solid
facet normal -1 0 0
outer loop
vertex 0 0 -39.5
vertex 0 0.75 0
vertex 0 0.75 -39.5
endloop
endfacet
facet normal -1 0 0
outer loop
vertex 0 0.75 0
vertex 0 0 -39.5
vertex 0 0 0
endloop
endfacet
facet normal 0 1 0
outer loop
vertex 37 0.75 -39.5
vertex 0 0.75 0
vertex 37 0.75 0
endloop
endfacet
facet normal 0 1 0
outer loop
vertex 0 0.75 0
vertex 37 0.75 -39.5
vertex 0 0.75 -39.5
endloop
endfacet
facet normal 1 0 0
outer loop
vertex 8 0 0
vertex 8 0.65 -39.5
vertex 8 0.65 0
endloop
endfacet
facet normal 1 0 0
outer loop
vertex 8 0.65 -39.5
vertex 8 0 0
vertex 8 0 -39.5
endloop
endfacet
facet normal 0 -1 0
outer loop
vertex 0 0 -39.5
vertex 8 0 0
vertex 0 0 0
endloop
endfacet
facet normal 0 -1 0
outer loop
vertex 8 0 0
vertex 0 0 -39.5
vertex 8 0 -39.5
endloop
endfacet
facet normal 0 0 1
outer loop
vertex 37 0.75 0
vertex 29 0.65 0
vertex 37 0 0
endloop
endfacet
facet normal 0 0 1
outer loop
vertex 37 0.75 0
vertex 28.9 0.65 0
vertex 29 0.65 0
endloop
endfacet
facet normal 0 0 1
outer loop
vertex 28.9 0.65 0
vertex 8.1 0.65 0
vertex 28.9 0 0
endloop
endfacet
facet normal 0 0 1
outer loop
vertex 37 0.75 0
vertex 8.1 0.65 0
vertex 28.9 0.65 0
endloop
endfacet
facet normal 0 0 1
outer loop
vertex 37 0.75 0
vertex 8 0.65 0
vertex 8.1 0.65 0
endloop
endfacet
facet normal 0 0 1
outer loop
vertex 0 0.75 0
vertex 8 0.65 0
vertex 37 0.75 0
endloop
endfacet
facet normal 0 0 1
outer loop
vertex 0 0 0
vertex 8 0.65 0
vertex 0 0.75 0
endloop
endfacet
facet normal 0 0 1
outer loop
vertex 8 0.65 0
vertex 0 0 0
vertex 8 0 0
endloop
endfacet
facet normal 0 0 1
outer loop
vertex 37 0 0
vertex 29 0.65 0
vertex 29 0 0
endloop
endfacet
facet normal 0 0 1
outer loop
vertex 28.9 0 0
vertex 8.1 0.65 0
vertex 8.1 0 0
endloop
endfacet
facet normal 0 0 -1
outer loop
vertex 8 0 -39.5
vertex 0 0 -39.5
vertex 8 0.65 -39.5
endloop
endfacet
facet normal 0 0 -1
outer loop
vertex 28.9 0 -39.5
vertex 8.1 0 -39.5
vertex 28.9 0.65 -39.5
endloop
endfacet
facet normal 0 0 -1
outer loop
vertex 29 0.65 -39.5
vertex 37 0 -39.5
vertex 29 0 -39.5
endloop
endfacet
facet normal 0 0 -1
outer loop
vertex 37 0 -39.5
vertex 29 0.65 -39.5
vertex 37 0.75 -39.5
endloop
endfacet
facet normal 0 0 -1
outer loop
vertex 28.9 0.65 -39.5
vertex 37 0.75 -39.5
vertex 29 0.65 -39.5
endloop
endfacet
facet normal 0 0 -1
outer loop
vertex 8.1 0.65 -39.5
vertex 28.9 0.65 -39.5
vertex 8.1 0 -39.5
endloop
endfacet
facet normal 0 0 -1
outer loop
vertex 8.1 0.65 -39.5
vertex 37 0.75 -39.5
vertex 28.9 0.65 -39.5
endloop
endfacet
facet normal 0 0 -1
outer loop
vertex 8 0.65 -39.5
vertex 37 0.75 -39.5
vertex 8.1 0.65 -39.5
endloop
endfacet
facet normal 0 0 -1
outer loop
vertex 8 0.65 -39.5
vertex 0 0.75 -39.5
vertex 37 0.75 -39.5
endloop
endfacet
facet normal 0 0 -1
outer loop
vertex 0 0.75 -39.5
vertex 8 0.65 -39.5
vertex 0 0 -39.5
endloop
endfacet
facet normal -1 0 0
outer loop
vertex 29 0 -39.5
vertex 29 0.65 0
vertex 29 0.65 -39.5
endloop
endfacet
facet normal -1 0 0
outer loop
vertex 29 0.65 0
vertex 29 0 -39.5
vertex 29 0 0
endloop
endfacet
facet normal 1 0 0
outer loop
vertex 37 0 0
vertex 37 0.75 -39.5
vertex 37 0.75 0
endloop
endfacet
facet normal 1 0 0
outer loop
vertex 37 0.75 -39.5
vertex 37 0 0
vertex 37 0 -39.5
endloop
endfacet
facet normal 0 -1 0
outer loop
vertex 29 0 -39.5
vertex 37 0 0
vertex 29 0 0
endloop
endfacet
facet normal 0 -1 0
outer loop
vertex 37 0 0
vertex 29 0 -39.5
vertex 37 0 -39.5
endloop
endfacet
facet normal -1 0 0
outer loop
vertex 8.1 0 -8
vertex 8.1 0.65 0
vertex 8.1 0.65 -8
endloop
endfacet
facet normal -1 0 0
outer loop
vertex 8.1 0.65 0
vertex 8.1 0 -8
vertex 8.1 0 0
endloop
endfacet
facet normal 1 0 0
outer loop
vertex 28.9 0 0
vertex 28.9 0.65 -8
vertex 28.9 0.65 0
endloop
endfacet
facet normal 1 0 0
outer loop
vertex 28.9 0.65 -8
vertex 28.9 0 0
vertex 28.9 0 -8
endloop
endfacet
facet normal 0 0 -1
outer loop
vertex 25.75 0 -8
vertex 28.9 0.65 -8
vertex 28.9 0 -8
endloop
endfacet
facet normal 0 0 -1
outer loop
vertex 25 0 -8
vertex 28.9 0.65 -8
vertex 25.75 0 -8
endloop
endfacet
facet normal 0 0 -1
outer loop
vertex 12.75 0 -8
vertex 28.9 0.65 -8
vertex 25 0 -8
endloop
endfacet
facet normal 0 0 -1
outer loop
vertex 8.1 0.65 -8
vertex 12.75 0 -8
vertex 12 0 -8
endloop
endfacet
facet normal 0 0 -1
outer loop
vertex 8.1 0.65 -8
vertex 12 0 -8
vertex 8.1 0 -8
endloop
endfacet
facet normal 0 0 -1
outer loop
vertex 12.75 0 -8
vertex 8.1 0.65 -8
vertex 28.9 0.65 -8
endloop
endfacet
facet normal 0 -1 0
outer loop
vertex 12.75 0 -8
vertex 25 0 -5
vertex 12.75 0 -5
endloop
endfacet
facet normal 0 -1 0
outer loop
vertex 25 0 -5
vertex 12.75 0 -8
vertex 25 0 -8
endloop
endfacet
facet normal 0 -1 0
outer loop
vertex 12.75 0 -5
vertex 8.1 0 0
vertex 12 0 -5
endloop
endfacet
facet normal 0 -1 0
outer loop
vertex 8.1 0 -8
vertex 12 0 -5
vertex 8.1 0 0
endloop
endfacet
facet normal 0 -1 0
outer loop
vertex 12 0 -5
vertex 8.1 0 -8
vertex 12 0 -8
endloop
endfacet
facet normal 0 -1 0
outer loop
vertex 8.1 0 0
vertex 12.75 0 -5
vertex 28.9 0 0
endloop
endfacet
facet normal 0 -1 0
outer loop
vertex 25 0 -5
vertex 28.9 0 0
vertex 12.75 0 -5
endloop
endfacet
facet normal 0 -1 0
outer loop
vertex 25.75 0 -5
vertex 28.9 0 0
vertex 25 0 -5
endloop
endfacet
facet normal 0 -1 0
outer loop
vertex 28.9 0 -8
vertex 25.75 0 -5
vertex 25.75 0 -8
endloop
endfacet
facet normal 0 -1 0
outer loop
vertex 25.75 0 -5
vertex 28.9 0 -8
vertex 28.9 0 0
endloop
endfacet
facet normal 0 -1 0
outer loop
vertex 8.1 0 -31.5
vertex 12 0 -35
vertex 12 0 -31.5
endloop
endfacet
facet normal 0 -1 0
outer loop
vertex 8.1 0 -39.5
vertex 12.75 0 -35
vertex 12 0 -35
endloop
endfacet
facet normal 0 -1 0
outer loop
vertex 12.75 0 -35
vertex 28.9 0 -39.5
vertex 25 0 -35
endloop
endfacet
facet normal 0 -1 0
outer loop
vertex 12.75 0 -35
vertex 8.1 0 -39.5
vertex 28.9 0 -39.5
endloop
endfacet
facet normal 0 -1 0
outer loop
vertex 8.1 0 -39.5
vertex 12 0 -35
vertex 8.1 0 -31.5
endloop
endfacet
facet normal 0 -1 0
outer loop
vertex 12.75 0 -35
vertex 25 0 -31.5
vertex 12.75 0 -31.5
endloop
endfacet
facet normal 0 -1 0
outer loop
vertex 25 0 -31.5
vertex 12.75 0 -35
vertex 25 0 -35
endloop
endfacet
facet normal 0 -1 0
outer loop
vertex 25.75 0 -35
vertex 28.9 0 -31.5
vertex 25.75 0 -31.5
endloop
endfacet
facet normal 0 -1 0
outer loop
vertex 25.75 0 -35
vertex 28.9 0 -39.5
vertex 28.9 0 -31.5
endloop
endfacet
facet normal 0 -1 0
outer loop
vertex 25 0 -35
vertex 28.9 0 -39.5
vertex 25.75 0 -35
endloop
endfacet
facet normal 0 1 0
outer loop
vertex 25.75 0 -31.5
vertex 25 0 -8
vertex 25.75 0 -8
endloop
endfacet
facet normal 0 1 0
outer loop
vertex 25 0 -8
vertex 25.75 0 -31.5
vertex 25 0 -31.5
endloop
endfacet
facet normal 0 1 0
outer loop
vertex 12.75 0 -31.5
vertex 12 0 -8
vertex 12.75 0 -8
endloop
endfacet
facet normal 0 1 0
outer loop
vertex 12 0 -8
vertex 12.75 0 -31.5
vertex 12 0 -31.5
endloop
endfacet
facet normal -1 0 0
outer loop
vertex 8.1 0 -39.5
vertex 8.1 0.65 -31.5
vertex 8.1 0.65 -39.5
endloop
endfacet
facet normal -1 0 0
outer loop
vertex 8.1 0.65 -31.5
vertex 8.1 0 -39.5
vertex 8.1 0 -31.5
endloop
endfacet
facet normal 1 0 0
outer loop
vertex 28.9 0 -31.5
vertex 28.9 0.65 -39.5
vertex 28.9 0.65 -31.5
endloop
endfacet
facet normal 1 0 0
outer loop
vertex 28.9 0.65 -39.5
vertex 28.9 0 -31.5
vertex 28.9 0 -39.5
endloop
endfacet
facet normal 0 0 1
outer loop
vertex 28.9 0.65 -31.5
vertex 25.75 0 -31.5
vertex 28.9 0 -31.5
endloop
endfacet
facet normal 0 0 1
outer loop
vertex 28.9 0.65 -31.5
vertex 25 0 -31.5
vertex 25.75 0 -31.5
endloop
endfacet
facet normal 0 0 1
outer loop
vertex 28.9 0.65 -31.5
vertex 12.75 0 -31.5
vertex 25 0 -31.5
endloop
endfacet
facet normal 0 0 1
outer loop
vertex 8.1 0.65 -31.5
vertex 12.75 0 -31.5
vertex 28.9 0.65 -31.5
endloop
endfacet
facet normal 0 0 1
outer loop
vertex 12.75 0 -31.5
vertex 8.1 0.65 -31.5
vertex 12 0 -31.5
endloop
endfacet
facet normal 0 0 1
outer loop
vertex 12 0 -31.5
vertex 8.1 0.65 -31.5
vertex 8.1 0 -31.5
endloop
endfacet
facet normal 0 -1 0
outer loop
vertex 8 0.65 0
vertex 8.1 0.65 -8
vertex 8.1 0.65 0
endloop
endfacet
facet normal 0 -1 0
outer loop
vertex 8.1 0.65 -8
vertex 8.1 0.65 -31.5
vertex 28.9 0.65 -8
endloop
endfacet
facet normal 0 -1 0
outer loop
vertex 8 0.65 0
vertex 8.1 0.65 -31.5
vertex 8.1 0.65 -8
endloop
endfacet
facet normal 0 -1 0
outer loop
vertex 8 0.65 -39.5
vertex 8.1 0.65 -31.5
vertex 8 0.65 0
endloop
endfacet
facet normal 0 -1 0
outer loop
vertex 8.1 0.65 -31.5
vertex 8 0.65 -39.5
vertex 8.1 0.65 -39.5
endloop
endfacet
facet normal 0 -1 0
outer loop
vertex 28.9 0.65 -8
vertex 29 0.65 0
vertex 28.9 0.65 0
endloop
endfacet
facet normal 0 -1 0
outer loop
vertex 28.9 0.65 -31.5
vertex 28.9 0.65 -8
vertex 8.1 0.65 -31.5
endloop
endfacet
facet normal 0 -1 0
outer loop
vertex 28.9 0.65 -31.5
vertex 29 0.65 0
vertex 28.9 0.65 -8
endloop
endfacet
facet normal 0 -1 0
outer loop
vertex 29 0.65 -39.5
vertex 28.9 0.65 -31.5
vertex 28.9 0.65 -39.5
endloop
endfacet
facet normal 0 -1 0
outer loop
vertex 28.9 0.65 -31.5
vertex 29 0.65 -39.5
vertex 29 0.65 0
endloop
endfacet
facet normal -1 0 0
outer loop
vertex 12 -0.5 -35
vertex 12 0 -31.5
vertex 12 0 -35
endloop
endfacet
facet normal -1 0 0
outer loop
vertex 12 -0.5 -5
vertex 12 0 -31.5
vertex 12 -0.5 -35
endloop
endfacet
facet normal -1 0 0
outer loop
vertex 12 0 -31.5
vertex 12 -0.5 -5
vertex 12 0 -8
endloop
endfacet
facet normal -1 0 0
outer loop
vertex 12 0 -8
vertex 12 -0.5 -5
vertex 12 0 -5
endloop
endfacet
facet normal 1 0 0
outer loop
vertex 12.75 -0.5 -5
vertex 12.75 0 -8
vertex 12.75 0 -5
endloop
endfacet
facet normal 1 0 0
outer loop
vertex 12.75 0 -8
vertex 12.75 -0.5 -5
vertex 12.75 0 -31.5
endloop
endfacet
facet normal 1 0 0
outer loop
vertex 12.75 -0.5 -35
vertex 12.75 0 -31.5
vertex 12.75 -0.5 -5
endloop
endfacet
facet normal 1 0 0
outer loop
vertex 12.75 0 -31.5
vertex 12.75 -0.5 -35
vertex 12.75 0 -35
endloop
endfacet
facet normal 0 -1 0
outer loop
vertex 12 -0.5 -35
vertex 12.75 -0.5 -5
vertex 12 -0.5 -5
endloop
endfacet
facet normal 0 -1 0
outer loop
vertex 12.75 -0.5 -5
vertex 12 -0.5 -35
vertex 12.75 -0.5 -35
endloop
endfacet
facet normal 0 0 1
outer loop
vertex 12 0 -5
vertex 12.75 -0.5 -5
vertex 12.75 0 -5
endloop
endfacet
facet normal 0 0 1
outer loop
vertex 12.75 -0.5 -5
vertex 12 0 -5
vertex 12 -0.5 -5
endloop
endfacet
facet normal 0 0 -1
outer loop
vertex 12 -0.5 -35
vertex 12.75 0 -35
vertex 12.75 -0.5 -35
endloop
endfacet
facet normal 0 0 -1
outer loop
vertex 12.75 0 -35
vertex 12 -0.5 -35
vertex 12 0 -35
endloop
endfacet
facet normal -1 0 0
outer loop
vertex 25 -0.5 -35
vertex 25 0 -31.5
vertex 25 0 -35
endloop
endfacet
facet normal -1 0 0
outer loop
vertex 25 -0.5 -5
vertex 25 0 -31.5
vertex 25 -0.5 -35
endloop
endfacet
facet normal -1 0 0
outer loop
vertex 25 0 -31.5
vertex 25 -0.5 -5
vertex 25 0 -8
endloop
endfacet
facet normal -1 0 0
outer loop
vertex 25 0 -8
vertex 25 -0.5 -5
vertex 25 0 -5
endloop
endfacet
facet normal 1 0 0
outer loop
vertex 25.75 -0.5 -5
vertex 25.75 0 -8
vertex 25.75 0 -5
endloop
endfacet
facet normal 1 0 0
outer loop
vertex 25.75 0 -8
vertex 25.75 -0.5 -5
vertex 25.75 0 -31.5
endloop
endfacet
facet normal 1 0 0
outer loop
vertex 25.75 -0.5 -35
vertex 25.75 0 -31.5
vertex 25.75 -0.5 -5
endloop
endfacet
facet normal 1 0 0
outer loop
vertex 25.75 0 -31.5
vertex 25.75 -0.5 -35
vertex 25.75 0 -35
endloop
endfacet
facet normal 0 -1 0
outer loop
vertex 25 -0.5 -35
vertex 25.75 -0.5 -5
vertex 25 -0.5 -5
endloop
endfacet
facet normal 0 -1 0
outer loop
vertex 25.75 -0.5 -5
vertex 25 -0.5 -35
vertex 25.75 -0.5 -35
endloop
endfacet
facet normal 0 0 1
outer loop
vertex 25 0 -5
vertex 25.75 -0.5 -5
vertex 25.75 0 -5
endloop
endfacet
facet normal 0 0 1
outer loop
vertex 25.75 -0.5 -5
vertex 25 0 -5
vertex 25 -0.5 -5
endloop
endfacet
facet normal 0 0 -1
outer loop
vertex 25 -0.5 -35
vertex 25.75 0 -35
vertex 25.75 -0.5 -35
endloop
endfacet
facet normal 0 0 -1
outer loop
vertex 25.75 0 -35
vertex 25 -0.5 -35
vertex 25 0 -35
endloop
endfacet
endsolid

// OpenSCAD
// The zero-plane is the top of the studs, the bottom of the subfloor

//translate([0, 0, 0])
//cube([37, 39.5, 0.75]);
e = 0.1;

rotate([-90, 0, 0]) {

// wood frame
translate([0, 0, 0]) cube([8, 39.5, 0.75]);
translate([29, 0, 0]) cube([8, 39.5, 0.75]);

translate([8+e, 0, 0]) cube([37-8-8-2*e, 8, 0.75]);
translate([8+e, 39.5-8, 0]) cube([37-8-8-2*e, 8, 0.75]);

// osb
//translate([8+e, 8+e, 0]) cube([37-8-8-2*e, 39.5-8-8-2*e, 0.75]);
// paper-thin layer to simulate that the OSB shouldn't be relied on for strength
translate([0, 0, 0.65]) cube([37, 39.5, 0.1]);

// shelving standards
translate([12, 5, -0.5]) cube([0.75, 30, 0.5]);
translate([25, 5, -0.5]) cube([0.75, 30, 0.5]);

// hinges
color([1, 0, 0]) translate([4.5, 0, 0]) rotate([90, 0, 90]) polygon([[0,0], [4.25, 0], [3, -1.75], [0, -2]]);
translate([14, 0, 0]) rotate([90, 0, 90]) polygon([[0,0], [4.25, 0], [3, -1.75], [0, -2]]);
translate([23, 0, 0]) rotate([90, 0, 90]) polygon([[0,0], [4.25, 0], [3, -1.75], [0, -2]]);
translate([32.5, 0, 0]) rotate([90, 0, 90]) polygon([[0,0], [4.25, 0], [3, -1.75], [0, -2]]);

/*
// pad
translate([1.5, 4.5, -2]) cube([34, 34, 1.25]);

// gas struts
translate([0.5, 29, -1.5])
rotate([85, 0, 0]) cylinder(18, 0.5, 0.5, $fn=36);

translate([36.5, 29, -1.5])
rotate([85, 0, 0]) cylinder(18, 0.5, 0.5, $fn=36);

*/


}
